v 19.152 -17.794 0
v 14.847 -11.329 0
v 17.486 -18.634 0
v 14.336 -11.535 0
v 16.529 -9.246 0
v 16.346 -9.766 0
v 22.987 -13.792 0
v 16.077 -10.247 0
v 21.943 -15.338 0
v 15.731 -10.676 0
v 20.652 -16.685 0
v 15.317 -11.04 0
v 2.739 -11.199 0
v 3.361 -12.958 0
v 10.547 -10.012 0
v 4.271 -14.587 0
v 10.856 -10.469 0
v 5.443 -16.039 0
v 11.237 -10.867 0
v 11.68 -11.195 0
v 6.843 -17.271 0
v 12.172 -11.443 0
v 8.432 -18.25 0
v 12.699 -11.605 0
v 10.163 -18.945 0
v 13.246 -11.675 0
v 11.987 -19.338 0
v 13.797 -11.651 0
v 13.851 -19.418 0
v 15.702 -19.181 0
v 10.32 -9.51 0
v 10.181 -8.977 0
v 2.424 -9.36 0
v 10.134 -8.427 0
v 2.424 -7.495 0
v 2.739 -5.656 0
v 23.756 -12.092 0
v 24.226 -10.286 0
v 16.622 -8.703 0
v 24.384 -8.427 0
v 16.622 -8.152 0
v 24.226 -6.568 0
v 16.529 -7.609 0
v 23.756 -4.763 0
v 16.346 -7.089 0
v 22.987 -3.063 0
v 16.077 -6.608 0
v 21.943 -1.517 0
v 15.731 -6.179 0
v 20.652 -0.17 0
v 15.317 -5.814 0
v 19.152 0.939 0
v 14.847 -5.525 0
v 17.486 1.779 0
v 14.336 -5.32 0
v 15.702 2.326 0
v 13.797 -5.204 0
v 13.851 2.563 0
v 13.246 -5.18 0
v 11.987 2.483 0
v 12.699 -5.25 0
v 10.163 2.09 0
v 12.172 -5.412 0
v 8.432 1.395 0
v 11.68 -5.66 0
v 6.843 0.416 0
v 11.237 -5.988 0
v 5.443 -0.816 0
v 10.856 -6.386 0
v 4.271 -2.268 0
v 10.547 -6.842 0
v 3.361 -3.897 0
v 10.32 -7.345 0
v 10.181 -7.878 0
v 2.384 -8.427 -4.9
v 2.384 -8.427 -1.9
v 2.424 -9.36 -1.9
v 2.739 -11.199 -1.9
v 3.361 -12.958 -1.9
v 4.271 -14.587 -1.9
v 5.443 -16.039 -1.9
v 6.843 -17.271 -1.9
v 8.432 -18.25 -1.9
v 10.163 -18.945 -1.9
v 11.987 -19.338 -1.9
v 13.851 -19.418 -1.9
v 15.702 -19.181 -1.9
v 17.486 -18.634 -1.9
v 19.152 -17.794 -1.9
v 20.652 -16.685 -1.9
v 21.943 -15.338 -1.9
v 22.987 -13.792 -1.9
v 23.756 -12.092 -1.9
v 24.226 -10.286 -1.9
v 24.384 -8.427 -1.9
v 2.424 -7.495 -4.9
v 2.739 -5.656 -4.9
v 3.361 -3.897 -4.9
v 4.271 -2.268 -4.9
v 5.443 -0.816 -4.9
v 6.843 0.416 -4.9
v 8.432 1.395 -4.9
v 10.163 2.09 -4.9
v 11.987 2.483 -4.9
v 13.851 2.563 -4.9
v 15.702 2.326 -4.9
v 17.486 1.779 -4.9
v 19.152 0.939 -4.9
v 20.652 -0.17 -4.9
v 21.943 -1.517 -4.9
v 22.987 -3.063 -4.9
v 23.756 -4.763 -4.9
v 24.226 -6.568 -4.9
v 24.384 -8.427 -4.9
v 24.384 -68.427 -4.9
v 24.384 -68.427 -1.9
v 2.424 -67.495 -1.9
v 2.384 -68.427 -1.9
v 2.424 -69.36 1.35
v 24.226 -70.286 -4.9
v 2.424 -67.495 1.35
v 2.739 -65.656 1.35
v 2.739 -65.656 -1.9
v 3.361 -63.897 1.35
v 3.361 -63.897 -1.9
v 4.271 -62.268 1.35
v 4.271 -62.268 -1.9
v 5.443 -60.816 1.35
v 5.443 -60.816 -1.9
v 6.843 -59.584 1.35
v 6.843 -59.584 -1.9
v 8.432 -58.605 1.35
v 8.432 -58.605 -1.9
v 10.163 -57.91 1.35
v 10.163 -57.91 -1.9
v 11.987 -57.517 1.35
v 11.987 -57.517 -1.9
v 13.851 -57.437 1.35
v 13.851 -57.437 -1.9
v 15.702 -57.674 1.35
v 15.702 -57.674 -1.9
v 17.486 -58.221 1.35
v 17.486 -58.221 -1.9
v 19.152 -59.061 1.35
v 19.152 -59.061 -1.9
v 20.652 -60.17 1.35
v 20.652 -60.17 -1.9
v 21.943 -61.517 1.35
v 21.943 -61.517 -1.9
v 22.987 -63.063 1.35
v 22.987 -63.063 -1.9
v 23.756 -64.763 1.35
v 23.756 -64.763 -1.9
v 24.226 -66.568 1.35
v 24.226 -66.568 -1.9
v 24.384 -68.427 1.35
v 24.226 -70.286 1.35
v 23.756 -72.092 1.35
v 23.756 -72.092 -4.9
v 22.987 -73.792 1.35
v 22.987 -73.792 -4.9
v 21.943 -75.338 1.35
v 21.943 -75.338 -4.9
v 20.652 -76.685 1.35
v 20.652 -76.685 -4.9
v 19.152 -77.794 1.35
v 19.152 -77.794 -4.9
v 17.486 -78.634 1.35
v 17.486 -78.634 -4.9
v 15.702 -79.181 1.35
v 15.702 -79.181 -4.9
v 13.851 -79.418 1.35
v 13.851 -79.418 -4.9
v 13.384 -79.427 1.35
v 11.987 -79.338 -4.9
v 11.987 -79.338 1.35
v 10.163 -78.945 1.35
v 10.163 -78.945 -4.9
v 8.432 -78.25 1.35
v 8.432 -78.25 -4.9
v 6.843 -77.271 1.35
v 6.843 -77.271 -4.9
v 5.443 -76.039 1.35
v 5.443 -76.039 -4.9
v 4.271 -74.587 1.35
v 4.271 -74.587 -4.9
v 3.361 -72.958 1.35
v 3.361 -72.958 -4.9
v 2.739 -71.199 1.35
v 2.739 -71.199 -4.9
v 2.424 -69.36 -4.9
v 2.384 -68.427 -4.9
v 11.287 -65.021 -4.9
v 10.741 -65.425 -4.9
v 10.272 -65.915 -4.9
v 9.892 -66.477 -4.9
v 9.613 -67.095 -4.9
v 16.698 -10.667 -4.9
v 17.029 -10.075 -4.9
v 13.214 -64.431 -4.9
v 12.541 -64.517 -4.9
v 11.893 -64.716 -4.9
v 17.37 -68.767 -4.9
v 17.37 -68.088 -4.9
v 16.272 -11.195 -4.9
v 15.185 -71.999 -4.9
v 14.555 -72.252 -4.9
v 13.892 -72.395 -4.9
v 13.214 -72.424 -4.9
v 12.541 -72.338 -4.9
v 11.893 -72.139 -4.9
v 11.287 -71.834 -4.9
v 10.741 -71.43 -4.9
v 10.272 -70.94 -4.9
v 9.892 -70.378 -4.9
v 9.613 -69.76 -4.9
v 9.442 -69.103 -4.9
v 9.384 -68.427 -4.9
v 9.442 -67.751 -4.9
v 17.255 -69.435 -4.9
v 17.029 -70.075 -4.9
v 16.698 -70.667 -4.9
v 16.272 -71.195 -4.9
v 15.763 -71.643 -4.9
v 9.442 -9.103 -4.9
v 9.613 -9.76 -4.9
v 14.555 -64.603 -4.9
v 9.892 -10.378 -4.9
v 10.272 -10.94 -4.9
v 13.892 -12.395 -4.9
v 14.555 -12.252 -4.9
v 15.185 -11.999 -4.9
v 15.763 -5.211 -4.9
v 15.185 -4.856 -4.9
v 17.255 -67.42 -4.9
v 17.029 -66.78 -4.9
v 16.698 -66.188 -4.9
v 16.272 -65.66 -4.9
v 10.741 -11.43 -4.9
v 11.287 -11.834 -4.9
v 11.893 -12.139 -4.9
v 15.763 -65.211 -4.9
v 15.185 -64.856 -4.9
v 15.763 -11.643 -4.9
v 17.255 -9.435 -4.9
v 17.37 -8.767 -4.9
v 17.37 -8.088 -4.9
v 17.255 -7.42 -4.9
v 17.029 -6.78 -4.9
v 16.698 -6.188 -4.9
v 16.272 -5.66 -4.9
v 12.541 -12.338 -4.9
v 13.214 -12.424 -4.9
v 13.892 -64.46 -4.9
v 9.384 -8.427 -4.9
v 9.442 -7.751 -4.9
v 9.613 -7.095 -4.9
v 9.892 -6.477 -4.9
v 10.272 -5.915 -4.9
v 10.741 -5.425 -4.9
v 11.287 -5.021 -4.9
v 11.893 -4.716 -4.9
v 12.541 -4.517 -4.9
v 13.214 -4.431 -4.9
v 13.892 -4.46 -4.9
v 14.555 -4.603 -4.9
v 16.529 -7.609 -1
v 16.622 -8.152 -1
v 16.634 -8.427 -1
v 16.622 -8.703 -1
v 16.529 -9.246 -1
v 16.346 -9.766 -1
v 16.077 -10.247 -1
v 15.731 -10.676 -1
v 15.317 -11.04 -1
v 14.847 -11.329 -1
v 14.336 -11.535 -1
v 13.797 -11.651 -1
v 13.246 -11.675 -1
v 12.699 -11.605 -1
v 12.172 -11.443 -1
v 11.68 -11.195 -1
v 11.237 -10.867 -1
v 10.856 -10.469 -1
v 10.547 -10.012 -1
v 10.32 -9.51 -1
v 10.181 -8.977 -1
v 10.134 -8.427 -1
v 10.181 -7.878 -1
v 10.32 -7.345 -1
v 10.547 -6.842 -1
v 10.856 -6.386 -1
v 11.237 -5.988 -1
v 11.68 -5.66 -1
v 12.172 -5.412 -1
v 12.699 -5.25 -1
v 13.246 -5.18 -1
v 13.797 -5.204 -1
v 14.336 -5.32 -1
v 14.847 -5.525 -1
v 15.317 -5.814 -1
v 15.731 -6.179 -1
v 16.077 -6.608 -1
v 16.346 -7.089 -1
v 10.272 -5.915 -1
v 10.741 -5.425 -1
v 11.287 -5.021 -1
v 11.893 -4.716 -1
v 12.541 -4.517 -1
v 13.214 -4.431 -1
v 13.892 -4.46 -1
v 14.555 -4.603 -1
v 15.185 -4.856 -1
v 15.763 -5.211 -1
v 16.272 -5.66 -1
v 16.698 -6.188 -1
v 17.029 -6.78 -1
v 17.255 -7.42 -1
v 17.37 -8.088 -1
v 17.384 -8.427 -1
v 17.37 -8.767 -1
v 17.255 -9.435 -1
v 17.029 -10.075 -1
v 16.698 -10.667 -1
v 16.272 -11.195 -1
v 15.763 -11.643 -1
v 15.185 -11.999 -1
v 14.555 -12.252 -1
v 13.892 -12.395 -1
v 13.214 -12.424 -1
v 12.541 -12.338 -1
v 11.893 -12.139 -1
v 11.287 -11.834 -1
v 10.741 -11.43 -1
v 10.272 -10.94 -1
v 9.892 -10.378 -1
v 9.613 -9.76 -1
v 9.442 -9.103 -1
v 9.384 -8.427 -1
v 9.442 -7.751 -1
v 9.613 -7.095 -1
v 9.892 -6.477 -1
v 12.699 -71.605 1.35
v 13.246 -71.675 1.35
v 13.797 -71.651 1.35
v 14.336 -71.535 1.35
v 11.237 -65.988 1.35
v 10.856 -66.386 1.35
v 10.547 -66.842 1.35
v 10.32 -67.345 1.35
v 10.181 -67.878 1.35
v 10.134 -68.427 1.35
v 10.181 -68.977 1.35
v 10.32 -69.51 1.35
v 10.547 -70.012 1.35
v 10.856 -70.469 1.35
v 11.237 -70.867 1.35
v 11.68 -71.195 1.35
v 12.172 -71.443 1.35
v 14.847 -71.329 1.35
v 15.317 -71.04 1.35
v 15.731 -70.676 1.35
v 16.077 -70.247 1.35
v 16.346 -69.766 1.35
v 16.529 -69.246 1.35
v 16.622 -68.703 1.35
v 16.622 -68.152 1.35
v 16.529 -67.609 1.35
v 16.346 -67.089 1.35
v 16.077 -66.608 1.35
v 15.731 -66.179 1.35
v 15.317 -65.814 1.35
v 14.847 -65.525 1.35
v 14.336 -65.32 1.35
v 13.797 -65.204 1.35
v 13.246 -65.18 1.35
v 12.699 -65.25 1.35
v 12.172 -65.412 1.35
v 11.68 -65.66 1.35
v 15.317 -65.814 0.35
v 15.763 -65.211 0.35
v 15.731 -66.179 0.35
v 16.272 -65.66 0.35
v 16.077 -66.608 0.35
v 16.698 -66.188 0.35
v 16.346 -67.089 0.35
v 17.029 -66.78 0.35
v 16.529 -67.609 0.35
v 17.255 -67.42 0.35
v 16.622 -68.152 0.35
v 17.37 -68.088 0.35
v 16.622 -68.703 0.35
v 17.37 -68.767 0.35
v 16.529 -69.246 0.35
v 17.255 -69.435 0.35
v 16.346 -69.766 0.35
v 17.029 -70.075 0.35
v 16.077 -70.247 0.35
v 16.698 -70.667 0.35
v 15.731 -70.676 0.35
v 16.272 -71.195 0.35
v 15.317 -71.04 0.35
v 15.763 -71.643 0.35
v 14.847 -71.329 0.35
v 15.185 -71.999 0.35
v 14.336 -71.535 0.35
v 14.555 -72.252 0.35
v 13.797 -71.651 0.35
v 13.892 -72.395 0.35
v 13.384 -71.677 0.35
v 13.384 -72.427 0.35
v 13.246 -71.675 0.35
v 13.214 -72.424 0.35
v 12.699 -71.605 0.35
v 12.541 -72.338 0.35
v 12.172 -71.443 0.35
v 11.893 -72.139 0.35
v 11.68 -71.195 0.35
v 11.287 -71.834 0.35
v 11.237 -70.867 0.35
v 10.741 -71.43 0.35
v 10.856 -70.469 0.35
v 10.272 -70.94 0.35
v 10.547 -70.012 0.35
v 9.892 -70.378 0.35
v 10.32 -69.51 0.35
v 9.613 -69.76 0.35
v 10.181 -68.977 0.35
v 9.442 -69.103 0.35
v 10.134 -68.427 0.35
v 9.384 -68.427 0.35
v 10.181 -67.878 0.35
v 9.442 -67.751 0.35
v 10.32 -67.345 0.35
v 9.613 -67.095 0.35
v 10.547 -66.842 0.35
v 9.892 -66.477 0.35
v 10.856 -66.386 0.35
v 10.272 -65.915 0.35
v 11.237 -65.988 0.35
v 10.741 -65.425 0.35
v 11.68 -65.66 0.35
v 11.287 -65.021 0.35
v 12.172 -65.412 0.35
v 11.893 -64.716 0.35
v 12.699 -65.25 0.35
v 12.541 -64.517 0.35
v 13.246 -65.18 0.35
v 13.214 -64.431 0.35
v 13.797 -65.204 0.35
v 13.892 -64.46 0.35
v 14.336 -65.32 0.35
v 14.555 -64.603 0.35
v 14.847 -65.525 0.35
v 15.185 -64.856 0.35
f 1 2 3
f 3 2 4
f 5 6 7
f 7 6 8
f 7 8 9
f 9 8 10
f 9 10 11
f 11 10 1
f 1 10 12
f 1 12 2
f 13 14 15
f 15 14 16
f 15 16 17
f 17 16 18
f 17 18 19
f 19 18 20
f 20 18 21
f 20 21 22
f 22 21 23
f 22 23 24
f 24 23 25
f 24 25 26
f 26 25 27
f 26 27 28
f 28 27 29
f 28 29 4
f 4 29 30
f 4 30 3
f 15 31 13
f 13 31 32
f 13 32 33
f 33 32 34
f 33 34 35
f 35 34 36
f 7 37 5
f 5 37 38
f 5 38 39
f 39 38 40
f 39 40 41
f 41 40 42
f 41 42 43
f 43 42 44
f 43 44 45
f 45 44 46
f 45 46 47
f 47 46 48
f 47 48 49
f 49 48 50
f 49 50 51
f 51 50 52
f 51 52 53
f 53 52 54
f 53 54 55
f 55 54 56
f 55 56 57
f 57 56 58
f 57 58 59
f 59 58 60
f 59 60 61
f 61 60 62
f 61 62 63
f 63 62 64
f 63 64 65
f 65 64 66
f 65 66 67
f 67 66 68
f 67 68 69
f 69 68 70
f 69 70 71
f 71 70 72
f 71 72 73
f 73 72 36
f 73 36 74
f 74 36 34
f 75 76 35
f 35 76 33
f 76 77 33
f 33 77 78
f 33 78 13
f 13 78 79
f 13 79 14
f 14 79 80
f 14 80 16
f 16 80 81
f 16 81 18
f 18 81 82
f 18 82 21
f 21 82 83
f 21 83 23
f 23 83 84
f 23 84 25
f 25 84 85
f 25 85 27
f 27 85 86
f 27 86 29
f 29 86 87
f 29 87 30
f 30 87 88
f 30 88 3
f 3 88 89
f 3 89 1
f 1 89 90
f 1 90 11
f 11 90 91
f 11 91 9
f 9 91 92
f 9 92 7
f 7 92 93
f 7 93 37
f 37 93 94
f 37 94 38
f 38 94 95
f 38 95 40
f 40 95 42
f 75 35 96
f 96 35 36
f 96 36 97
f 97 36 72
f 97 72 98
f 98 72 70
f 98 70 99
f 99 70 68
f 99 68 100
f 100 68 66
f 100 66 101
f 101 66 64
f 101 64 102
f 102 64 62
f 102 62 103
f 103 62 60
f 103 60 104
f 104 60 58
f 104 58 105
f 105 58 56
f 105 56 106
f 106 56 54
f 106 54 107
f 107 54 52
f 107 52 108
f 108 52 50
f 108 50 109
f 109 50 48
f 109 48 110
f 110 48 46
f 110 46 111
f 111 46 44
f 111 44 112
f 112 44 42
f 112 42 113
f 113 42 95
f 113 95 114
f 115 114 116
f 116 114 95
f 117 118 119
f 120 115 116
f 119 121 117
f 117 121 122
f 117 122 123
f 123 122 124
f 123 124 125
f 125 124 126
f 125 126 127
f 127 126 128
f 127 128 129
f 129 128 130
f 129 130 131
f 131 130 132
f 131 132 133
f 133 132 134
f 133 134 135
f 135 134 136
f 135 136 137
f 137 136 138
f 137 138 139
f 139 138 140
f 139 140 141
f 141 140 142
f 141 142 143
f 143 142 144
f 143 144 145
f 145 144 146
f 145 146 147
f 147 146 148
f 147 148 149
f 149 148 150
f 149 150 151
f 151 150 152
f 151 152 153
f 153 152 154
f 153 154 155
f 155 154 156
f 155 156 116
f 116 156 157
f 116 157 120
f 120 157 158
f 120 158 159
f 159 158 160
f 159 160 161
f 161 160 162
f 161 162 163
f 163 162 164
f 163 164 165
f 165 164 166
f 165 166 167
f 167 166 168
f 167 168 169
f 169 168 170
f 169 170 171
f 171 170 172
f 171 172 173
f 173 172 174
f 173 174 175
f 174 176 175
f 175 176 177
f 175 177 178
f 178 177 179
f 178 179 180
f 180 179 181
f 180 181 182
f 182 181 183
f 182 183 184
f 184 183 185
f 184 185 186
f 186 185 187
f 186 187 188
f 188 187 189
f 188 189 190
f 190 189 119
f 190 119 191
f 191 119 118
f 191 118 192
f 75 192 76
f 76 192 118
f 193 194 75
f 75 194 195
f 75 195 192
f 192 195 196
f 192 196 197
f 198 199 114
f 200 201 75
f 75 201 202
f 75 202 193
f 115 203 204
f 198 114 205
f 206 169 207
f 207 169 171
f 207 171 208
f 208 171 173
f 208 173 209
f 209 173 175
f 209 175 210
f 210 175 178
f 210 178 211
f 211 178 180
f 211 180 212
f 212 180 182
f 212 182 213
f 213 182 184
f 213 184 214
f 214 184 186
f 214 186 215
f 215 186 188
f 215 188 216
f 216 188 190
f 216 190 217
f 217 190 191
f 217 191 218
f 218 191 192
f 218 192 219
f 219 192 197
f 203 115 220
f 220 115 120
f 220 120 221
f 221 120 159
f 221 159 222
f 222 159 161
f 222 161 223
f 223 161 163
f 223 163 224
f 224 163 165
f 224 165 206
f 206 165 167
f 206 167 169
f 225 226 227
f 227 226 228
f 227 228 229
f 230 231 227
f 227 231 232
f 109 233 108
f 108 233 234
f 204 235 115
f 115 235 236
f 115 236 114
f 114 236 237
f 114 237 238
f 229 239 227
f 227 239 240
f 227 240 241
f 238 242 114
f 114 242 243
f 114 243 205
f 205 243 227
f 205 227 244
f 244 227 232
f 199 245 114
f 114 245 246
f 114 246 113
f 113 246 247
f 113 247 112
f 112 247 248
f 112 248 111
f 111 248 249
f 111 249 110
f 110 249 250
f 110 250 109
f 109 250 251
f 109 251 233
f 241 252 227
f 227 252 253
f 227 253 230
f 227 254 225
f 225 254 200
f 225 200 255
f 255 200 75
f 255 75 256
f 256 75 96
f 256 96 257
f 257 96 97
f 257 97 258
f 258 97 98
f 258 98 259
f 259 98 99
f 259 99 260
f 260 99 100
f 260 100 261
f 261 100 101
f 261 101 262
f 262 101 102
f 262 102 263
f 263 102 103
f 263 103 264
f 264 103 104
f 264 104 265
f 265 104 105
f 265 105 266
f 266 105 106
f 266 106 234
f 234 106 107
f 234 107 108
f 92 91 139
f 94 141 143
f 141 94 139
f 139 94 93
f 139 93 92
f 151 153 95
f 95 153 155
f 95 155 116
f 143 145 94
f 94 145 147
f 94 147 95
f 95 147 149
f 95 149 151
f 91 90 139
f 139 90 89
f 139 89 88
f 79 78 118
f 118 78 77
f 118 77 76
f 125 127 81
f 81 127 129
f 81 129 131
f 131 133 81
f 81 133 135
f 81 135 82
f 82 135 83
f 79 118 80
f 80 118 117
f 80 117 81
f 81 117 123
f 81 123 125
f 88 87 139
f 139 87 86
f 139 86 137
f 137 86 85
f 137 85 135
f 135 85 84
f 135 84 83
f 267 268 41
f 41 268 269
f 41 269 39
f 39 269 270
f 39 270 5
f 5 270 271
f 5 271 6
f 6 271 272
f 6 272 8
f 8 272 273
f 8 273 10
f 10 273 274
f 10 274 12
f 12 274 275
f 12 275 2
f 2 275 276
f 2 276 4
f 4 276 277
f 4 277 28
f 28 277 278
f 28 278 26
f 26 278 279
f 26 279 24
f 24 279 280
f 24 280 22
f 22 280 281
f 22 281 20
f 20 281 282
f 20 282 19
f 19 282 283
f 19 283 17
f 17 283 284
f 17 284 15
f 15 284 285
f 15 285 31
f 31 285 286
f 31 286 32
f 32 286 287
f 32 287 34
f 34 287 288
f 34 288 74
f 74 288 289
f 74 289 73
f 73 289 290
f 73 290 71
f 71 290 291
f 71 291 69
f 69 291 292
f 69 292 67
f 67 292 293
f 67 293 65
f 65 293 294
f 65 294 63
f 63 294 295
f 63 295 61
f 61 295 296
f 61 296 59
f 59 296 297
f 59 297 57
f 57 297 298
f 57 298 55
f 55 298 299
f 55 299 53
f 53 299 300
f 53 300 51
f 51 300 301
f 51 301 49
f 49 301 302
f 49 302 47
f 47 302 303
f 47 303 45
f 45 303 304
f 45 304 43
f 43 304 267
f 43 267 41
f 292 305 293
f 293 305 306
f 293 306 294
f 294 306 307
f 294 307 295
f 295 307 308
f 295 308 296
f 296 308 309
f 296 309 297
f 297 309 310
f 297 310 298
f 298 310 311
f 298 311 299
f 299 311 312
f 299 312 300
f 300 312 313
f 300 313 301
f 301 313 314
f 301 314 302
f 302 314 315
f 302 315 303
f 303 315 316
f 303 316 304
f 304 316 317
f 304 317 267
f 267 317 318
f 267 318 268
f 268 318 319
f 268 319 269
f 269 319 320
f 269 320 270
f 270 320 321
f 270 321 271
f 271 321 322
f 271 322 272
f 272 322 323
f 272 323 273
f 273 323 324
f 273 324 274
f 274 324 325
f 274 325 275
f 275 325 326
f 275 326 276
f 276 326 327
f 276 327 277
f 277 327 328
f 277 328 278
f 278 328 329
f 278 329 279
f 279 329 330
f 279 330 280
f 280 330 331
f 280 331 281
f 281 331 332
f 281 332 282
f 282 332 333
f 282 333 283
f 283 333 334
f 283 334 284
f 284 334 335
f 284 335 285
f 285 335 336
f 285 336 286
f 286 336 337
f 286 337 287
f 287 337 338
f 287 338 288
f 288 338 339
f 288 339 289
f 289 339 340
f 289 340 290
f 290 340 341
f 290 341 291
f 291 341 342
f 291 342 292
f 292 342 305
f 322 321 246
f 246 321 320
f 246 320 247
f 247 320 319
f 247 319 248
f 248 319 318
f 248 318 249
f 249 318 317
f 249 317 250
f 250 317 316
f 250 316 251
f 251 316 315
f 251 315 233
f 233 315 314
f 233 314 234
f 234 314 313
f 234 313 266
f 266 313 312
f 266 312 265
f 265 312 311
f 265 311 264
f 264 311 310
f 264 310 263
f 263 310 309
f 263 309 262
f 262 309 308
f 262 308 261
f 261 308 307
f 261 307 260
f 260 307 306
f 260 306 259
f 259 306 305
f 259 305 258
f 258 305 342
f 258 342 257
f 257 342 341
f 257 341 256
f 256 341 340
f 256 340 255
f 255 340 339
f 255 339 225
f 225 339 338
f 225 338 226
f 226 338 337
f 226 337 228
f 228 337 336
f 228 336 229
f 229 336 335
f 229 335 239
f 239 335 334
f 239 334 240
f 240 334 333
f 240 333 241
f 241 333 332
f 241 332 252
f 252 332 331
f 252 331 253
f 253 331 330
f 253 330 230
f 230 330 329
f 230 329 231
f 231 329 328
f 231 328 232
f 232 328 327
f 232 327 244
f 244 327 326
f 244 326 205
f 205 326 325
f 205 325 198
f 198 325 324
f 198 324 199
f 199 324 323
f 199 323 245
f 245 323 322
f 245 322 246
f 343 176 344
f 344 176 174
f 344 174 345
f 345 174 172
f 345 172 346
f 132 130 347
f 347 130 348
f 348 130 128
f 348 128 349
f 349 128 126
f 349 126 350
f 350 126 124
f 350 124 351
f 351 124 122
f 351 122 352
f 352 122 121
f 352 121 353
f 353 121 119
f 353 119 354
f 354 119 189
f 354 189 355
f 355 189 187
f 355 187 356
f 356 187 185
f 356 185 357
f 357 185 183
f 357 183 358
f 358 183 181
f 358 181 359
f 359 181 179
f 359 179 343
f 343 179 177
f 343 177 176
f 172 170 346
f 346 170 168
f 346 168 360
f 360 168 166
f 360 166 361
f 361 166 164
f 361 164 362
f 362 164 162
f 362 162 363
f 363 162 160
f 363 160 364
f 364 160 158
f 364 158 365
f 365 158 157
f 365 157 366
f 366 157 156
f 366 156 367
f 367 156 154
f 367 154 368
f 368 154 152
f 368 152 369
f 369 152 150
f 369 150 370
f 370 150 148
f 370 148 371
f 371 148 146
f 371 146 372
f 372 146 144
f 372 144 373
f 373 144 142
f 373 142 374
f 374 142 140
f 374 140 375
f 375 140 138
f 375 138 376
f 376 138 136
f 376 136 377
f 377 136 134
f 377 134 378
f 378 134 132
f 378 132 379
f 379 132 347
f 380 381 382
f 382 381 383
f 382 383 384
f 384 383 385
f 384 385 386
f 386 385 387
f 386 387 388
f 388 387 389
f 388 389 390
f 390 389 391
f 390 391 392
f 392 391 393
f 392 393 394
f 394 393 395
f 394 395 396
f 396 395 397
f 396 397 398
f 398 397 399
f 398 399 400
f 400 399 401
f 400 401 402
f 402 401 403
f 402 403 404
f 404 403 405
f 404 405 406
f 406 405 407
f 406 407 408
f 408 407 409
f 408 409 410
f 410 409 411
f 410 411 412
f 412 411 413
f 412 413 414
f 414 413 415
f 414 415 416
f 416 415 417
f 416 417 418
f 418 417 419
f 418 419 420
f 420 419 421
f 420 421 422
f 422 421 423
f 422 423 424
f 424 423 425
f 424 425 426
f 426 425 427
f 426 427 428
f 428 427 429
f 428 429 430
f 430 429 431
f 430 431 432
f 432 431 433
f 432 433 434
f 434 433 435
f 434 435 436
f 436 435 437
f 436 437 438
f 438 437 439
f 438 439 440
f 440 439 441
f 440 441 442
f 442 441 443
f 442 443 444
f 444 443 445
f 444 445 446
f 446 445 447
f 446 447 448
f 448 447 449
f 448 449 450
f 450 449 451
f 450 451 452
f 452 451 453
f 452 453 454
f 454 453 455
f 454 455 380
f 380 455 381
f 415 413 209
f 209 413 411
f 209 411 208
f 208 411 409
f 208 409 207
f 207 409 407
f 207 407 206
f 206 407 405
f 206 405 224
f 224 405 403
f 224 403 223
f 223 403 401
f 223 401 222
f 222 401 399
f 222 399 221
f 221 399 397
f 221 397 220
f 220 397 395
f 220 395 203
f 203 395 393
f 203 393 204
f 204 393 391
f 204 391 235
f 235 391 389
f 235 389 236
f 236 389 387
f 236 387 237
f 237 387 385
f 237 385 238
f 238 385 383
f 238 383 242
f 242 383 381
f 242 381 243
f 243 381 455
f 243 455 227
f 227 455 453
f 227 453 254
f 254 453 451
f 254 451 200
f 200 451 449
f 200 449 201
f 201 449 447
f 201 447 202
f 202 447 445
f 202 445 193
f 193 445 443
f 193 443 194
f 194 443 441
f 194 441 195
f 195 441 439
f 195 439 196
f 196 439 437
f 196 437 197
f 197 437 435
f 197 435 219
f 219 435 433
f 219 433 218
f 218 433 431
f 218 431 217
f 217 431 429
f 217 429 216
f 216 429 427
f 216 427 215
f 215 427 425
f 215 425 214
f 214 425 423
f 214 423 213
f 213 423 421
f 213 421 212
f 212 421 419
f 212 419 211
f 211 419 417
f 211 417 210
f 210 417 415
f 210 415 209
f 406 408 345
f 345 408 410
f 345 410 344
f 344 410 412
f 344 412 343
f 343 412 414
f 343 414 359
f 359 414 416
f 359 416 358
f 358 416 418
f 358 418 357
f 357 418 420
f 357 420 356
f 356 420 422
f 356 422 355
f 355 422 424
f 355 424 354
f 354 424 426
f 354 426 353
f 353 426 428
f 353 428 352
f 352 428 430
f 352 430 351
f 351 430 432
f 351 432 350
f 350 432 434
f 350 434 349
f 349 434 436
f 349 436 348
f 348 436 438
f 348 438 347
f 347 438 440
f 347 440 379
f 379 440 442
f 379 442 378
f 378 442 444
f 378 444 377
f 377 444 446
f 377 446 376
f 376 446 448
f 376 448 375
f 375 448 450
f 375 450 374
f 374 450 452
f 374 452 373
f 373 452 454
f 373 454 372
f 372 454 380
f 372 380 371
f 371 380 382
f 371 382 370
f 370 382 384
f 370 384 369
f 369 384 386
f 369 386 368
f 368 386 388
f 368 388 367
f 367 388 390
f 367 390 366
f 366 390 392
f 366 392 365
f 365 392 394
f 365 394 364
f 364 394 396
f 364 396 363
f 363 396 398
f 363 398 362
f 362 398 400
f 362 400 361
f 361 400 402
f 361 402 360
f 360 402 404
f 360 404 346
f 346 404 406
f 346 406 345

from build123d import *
from build123d.topology import SkipClean

# Parameters (mm, degrees)
ESBO_O1_R                = 11
RESSALTO_EXTRUS_O1_DEPTH = 1.9
RESSALTO_EXTRUS_O3_DEPTH = 3
ESBO_O4_R                = 3.25
CORTE_EXTRUS_O2_DEPTH    = 84.230548987
ESBO_O5_R                = 4
CORTE_EXTRUS_O5_DEPTH    = 3.9
RESSALTO_EXTRUS_O4_START = 3.25
ESBO_O6_R                = 11
RESSALTO_EXTRUS_O4_DEPTH = 3.25
ESBO_O7_R                = 4
CORTE_EXTRUS_O6_DEPTH    = 5.25
ESBO_O8_R                = 3.25
CORTE_EXTRUS_O7_DEPTH    = 84.320926451


with BuildPart() as part:
    # Esboço1 → Ressalto-extrusão1 (new body)
    with BuildSketch(Plane.XY):
        with Locations((13.384187511, -8.427486956)):
            Circle(ESBO_O1_R)
    extrude(amount=-RESSALTO_EXTRUS_O1_DEPTH)

    # Esboço3 → Ressalto-extrusão3 (add)
    with SkipClean():  # the faces are left unmerged after this step: merging them gives an invalid solid
        with BuildSketch(Plane(origin=(0, 0, -1.9), x_dir=(-1, 0, 0), z_dir=(0, 0, -1))):
            with BuildLine():
                Line((-24.384187511, -8.427486956), (-24.384187511, -68.427486956))
                ThreePointArc((-24.384187511, -68.427486956), (-13.384187511, -79.427486956), (-2.384187511, -68.427486956))
                Line((-2.384187511, -68.427486956), (-2.384187511, -8.427486956))
                ThreePointArc((-2.384187511, -8.427486956), (-13.384187511, 2.572513044), (-24.384187511, -8.427486956))
            make_face()
        extrude(amount=RESSALTO_EXTRUS_O3_DEPTH)

    # Esboço4 → Corte-extrusão2 (cut, through all)
    with SkipClean():  # the faces are left unmerged after this step: merging them gives an invalid solid
        with BuildSketch(Plane(origin=(0, 0, -4.9), x_dir=(-1, 0, 0), z_dir=(0, 0, -1))):
            with Locations((-13.384187511, -8.427486956)):
                Circle(ESBO_O4_R)
        extrude(amount=-CORTE_EXTRUS_O2_DEPTH, mode=Mode.SUBTRACT)

    # Esboço5 → Corte-extrusão5 (cut)
    with SkipClean():  # the faces are left unmerged after this step: merging them gives an invalid solid
        with BuildSketch(Plane(origin=(0, 0, -4.9), x_dir=(-1, 0, 0), z_dir=(0, 0, -1))):
            with Locations((-13.384187511, -8.427486956)):
                Circle(ESBO_O5_R)
        extrude(amount=-CORTE_EXTRUS_O5_DEPTH, mode=Mode.SUBTRACT)

    # Esboço6 → Ressalto-extrusão4 (add)
    with SkipClean():  # the faces are left unmerged after this step: merging them gives an invalid solid
        with BuildSketch(Plane.XY.offset(-1.9).offset(RESSALTO_EXTRUS_O4_START)):
            with Locations((13.384187511, -68.427486956)):
                Circle(ESBO_O6_R)
        extrude(amount=-RESSALTO_EXTRUS_O4_DEPTH)

    # Esboço7 → Corte-extrusão6 (cut)
    with SkipClean():  # the faces are left unmerged after this step: merging them gives an invalid solid
        with BuildSketch(Plane(origin=(0, 0, -4.9), x_dir=(-1, 0, 0), z_dir=(0, 0, -1))):
            with Locations((-13.384187511, -68.427486956)):
                Circle(ESBO_O7_R)
        extrude(amount=-CORTE_EXTRUS_O6_DEPTH, mode=Mode.SUBTRACT)

    # Esboço8 → Corte-extrusão7 (cut, through all)
    with SkipClean():  # the faces are left unmerged after this step: merging them gives an invalid solid
        with BuildSketch(Plane(origin=(0, 0, -4.9), x_dir=(-1, 0, 0), z_dir=(0, 0, -1))):
            with Locations((-13.384187511, -68.427486956)):
                Circle(ESBO_O8_R)
        extrude(amount=-CORTE_EXTRUS_O7_DEPTH, mode=Mode.SUBTRACT)


solid = part.part
